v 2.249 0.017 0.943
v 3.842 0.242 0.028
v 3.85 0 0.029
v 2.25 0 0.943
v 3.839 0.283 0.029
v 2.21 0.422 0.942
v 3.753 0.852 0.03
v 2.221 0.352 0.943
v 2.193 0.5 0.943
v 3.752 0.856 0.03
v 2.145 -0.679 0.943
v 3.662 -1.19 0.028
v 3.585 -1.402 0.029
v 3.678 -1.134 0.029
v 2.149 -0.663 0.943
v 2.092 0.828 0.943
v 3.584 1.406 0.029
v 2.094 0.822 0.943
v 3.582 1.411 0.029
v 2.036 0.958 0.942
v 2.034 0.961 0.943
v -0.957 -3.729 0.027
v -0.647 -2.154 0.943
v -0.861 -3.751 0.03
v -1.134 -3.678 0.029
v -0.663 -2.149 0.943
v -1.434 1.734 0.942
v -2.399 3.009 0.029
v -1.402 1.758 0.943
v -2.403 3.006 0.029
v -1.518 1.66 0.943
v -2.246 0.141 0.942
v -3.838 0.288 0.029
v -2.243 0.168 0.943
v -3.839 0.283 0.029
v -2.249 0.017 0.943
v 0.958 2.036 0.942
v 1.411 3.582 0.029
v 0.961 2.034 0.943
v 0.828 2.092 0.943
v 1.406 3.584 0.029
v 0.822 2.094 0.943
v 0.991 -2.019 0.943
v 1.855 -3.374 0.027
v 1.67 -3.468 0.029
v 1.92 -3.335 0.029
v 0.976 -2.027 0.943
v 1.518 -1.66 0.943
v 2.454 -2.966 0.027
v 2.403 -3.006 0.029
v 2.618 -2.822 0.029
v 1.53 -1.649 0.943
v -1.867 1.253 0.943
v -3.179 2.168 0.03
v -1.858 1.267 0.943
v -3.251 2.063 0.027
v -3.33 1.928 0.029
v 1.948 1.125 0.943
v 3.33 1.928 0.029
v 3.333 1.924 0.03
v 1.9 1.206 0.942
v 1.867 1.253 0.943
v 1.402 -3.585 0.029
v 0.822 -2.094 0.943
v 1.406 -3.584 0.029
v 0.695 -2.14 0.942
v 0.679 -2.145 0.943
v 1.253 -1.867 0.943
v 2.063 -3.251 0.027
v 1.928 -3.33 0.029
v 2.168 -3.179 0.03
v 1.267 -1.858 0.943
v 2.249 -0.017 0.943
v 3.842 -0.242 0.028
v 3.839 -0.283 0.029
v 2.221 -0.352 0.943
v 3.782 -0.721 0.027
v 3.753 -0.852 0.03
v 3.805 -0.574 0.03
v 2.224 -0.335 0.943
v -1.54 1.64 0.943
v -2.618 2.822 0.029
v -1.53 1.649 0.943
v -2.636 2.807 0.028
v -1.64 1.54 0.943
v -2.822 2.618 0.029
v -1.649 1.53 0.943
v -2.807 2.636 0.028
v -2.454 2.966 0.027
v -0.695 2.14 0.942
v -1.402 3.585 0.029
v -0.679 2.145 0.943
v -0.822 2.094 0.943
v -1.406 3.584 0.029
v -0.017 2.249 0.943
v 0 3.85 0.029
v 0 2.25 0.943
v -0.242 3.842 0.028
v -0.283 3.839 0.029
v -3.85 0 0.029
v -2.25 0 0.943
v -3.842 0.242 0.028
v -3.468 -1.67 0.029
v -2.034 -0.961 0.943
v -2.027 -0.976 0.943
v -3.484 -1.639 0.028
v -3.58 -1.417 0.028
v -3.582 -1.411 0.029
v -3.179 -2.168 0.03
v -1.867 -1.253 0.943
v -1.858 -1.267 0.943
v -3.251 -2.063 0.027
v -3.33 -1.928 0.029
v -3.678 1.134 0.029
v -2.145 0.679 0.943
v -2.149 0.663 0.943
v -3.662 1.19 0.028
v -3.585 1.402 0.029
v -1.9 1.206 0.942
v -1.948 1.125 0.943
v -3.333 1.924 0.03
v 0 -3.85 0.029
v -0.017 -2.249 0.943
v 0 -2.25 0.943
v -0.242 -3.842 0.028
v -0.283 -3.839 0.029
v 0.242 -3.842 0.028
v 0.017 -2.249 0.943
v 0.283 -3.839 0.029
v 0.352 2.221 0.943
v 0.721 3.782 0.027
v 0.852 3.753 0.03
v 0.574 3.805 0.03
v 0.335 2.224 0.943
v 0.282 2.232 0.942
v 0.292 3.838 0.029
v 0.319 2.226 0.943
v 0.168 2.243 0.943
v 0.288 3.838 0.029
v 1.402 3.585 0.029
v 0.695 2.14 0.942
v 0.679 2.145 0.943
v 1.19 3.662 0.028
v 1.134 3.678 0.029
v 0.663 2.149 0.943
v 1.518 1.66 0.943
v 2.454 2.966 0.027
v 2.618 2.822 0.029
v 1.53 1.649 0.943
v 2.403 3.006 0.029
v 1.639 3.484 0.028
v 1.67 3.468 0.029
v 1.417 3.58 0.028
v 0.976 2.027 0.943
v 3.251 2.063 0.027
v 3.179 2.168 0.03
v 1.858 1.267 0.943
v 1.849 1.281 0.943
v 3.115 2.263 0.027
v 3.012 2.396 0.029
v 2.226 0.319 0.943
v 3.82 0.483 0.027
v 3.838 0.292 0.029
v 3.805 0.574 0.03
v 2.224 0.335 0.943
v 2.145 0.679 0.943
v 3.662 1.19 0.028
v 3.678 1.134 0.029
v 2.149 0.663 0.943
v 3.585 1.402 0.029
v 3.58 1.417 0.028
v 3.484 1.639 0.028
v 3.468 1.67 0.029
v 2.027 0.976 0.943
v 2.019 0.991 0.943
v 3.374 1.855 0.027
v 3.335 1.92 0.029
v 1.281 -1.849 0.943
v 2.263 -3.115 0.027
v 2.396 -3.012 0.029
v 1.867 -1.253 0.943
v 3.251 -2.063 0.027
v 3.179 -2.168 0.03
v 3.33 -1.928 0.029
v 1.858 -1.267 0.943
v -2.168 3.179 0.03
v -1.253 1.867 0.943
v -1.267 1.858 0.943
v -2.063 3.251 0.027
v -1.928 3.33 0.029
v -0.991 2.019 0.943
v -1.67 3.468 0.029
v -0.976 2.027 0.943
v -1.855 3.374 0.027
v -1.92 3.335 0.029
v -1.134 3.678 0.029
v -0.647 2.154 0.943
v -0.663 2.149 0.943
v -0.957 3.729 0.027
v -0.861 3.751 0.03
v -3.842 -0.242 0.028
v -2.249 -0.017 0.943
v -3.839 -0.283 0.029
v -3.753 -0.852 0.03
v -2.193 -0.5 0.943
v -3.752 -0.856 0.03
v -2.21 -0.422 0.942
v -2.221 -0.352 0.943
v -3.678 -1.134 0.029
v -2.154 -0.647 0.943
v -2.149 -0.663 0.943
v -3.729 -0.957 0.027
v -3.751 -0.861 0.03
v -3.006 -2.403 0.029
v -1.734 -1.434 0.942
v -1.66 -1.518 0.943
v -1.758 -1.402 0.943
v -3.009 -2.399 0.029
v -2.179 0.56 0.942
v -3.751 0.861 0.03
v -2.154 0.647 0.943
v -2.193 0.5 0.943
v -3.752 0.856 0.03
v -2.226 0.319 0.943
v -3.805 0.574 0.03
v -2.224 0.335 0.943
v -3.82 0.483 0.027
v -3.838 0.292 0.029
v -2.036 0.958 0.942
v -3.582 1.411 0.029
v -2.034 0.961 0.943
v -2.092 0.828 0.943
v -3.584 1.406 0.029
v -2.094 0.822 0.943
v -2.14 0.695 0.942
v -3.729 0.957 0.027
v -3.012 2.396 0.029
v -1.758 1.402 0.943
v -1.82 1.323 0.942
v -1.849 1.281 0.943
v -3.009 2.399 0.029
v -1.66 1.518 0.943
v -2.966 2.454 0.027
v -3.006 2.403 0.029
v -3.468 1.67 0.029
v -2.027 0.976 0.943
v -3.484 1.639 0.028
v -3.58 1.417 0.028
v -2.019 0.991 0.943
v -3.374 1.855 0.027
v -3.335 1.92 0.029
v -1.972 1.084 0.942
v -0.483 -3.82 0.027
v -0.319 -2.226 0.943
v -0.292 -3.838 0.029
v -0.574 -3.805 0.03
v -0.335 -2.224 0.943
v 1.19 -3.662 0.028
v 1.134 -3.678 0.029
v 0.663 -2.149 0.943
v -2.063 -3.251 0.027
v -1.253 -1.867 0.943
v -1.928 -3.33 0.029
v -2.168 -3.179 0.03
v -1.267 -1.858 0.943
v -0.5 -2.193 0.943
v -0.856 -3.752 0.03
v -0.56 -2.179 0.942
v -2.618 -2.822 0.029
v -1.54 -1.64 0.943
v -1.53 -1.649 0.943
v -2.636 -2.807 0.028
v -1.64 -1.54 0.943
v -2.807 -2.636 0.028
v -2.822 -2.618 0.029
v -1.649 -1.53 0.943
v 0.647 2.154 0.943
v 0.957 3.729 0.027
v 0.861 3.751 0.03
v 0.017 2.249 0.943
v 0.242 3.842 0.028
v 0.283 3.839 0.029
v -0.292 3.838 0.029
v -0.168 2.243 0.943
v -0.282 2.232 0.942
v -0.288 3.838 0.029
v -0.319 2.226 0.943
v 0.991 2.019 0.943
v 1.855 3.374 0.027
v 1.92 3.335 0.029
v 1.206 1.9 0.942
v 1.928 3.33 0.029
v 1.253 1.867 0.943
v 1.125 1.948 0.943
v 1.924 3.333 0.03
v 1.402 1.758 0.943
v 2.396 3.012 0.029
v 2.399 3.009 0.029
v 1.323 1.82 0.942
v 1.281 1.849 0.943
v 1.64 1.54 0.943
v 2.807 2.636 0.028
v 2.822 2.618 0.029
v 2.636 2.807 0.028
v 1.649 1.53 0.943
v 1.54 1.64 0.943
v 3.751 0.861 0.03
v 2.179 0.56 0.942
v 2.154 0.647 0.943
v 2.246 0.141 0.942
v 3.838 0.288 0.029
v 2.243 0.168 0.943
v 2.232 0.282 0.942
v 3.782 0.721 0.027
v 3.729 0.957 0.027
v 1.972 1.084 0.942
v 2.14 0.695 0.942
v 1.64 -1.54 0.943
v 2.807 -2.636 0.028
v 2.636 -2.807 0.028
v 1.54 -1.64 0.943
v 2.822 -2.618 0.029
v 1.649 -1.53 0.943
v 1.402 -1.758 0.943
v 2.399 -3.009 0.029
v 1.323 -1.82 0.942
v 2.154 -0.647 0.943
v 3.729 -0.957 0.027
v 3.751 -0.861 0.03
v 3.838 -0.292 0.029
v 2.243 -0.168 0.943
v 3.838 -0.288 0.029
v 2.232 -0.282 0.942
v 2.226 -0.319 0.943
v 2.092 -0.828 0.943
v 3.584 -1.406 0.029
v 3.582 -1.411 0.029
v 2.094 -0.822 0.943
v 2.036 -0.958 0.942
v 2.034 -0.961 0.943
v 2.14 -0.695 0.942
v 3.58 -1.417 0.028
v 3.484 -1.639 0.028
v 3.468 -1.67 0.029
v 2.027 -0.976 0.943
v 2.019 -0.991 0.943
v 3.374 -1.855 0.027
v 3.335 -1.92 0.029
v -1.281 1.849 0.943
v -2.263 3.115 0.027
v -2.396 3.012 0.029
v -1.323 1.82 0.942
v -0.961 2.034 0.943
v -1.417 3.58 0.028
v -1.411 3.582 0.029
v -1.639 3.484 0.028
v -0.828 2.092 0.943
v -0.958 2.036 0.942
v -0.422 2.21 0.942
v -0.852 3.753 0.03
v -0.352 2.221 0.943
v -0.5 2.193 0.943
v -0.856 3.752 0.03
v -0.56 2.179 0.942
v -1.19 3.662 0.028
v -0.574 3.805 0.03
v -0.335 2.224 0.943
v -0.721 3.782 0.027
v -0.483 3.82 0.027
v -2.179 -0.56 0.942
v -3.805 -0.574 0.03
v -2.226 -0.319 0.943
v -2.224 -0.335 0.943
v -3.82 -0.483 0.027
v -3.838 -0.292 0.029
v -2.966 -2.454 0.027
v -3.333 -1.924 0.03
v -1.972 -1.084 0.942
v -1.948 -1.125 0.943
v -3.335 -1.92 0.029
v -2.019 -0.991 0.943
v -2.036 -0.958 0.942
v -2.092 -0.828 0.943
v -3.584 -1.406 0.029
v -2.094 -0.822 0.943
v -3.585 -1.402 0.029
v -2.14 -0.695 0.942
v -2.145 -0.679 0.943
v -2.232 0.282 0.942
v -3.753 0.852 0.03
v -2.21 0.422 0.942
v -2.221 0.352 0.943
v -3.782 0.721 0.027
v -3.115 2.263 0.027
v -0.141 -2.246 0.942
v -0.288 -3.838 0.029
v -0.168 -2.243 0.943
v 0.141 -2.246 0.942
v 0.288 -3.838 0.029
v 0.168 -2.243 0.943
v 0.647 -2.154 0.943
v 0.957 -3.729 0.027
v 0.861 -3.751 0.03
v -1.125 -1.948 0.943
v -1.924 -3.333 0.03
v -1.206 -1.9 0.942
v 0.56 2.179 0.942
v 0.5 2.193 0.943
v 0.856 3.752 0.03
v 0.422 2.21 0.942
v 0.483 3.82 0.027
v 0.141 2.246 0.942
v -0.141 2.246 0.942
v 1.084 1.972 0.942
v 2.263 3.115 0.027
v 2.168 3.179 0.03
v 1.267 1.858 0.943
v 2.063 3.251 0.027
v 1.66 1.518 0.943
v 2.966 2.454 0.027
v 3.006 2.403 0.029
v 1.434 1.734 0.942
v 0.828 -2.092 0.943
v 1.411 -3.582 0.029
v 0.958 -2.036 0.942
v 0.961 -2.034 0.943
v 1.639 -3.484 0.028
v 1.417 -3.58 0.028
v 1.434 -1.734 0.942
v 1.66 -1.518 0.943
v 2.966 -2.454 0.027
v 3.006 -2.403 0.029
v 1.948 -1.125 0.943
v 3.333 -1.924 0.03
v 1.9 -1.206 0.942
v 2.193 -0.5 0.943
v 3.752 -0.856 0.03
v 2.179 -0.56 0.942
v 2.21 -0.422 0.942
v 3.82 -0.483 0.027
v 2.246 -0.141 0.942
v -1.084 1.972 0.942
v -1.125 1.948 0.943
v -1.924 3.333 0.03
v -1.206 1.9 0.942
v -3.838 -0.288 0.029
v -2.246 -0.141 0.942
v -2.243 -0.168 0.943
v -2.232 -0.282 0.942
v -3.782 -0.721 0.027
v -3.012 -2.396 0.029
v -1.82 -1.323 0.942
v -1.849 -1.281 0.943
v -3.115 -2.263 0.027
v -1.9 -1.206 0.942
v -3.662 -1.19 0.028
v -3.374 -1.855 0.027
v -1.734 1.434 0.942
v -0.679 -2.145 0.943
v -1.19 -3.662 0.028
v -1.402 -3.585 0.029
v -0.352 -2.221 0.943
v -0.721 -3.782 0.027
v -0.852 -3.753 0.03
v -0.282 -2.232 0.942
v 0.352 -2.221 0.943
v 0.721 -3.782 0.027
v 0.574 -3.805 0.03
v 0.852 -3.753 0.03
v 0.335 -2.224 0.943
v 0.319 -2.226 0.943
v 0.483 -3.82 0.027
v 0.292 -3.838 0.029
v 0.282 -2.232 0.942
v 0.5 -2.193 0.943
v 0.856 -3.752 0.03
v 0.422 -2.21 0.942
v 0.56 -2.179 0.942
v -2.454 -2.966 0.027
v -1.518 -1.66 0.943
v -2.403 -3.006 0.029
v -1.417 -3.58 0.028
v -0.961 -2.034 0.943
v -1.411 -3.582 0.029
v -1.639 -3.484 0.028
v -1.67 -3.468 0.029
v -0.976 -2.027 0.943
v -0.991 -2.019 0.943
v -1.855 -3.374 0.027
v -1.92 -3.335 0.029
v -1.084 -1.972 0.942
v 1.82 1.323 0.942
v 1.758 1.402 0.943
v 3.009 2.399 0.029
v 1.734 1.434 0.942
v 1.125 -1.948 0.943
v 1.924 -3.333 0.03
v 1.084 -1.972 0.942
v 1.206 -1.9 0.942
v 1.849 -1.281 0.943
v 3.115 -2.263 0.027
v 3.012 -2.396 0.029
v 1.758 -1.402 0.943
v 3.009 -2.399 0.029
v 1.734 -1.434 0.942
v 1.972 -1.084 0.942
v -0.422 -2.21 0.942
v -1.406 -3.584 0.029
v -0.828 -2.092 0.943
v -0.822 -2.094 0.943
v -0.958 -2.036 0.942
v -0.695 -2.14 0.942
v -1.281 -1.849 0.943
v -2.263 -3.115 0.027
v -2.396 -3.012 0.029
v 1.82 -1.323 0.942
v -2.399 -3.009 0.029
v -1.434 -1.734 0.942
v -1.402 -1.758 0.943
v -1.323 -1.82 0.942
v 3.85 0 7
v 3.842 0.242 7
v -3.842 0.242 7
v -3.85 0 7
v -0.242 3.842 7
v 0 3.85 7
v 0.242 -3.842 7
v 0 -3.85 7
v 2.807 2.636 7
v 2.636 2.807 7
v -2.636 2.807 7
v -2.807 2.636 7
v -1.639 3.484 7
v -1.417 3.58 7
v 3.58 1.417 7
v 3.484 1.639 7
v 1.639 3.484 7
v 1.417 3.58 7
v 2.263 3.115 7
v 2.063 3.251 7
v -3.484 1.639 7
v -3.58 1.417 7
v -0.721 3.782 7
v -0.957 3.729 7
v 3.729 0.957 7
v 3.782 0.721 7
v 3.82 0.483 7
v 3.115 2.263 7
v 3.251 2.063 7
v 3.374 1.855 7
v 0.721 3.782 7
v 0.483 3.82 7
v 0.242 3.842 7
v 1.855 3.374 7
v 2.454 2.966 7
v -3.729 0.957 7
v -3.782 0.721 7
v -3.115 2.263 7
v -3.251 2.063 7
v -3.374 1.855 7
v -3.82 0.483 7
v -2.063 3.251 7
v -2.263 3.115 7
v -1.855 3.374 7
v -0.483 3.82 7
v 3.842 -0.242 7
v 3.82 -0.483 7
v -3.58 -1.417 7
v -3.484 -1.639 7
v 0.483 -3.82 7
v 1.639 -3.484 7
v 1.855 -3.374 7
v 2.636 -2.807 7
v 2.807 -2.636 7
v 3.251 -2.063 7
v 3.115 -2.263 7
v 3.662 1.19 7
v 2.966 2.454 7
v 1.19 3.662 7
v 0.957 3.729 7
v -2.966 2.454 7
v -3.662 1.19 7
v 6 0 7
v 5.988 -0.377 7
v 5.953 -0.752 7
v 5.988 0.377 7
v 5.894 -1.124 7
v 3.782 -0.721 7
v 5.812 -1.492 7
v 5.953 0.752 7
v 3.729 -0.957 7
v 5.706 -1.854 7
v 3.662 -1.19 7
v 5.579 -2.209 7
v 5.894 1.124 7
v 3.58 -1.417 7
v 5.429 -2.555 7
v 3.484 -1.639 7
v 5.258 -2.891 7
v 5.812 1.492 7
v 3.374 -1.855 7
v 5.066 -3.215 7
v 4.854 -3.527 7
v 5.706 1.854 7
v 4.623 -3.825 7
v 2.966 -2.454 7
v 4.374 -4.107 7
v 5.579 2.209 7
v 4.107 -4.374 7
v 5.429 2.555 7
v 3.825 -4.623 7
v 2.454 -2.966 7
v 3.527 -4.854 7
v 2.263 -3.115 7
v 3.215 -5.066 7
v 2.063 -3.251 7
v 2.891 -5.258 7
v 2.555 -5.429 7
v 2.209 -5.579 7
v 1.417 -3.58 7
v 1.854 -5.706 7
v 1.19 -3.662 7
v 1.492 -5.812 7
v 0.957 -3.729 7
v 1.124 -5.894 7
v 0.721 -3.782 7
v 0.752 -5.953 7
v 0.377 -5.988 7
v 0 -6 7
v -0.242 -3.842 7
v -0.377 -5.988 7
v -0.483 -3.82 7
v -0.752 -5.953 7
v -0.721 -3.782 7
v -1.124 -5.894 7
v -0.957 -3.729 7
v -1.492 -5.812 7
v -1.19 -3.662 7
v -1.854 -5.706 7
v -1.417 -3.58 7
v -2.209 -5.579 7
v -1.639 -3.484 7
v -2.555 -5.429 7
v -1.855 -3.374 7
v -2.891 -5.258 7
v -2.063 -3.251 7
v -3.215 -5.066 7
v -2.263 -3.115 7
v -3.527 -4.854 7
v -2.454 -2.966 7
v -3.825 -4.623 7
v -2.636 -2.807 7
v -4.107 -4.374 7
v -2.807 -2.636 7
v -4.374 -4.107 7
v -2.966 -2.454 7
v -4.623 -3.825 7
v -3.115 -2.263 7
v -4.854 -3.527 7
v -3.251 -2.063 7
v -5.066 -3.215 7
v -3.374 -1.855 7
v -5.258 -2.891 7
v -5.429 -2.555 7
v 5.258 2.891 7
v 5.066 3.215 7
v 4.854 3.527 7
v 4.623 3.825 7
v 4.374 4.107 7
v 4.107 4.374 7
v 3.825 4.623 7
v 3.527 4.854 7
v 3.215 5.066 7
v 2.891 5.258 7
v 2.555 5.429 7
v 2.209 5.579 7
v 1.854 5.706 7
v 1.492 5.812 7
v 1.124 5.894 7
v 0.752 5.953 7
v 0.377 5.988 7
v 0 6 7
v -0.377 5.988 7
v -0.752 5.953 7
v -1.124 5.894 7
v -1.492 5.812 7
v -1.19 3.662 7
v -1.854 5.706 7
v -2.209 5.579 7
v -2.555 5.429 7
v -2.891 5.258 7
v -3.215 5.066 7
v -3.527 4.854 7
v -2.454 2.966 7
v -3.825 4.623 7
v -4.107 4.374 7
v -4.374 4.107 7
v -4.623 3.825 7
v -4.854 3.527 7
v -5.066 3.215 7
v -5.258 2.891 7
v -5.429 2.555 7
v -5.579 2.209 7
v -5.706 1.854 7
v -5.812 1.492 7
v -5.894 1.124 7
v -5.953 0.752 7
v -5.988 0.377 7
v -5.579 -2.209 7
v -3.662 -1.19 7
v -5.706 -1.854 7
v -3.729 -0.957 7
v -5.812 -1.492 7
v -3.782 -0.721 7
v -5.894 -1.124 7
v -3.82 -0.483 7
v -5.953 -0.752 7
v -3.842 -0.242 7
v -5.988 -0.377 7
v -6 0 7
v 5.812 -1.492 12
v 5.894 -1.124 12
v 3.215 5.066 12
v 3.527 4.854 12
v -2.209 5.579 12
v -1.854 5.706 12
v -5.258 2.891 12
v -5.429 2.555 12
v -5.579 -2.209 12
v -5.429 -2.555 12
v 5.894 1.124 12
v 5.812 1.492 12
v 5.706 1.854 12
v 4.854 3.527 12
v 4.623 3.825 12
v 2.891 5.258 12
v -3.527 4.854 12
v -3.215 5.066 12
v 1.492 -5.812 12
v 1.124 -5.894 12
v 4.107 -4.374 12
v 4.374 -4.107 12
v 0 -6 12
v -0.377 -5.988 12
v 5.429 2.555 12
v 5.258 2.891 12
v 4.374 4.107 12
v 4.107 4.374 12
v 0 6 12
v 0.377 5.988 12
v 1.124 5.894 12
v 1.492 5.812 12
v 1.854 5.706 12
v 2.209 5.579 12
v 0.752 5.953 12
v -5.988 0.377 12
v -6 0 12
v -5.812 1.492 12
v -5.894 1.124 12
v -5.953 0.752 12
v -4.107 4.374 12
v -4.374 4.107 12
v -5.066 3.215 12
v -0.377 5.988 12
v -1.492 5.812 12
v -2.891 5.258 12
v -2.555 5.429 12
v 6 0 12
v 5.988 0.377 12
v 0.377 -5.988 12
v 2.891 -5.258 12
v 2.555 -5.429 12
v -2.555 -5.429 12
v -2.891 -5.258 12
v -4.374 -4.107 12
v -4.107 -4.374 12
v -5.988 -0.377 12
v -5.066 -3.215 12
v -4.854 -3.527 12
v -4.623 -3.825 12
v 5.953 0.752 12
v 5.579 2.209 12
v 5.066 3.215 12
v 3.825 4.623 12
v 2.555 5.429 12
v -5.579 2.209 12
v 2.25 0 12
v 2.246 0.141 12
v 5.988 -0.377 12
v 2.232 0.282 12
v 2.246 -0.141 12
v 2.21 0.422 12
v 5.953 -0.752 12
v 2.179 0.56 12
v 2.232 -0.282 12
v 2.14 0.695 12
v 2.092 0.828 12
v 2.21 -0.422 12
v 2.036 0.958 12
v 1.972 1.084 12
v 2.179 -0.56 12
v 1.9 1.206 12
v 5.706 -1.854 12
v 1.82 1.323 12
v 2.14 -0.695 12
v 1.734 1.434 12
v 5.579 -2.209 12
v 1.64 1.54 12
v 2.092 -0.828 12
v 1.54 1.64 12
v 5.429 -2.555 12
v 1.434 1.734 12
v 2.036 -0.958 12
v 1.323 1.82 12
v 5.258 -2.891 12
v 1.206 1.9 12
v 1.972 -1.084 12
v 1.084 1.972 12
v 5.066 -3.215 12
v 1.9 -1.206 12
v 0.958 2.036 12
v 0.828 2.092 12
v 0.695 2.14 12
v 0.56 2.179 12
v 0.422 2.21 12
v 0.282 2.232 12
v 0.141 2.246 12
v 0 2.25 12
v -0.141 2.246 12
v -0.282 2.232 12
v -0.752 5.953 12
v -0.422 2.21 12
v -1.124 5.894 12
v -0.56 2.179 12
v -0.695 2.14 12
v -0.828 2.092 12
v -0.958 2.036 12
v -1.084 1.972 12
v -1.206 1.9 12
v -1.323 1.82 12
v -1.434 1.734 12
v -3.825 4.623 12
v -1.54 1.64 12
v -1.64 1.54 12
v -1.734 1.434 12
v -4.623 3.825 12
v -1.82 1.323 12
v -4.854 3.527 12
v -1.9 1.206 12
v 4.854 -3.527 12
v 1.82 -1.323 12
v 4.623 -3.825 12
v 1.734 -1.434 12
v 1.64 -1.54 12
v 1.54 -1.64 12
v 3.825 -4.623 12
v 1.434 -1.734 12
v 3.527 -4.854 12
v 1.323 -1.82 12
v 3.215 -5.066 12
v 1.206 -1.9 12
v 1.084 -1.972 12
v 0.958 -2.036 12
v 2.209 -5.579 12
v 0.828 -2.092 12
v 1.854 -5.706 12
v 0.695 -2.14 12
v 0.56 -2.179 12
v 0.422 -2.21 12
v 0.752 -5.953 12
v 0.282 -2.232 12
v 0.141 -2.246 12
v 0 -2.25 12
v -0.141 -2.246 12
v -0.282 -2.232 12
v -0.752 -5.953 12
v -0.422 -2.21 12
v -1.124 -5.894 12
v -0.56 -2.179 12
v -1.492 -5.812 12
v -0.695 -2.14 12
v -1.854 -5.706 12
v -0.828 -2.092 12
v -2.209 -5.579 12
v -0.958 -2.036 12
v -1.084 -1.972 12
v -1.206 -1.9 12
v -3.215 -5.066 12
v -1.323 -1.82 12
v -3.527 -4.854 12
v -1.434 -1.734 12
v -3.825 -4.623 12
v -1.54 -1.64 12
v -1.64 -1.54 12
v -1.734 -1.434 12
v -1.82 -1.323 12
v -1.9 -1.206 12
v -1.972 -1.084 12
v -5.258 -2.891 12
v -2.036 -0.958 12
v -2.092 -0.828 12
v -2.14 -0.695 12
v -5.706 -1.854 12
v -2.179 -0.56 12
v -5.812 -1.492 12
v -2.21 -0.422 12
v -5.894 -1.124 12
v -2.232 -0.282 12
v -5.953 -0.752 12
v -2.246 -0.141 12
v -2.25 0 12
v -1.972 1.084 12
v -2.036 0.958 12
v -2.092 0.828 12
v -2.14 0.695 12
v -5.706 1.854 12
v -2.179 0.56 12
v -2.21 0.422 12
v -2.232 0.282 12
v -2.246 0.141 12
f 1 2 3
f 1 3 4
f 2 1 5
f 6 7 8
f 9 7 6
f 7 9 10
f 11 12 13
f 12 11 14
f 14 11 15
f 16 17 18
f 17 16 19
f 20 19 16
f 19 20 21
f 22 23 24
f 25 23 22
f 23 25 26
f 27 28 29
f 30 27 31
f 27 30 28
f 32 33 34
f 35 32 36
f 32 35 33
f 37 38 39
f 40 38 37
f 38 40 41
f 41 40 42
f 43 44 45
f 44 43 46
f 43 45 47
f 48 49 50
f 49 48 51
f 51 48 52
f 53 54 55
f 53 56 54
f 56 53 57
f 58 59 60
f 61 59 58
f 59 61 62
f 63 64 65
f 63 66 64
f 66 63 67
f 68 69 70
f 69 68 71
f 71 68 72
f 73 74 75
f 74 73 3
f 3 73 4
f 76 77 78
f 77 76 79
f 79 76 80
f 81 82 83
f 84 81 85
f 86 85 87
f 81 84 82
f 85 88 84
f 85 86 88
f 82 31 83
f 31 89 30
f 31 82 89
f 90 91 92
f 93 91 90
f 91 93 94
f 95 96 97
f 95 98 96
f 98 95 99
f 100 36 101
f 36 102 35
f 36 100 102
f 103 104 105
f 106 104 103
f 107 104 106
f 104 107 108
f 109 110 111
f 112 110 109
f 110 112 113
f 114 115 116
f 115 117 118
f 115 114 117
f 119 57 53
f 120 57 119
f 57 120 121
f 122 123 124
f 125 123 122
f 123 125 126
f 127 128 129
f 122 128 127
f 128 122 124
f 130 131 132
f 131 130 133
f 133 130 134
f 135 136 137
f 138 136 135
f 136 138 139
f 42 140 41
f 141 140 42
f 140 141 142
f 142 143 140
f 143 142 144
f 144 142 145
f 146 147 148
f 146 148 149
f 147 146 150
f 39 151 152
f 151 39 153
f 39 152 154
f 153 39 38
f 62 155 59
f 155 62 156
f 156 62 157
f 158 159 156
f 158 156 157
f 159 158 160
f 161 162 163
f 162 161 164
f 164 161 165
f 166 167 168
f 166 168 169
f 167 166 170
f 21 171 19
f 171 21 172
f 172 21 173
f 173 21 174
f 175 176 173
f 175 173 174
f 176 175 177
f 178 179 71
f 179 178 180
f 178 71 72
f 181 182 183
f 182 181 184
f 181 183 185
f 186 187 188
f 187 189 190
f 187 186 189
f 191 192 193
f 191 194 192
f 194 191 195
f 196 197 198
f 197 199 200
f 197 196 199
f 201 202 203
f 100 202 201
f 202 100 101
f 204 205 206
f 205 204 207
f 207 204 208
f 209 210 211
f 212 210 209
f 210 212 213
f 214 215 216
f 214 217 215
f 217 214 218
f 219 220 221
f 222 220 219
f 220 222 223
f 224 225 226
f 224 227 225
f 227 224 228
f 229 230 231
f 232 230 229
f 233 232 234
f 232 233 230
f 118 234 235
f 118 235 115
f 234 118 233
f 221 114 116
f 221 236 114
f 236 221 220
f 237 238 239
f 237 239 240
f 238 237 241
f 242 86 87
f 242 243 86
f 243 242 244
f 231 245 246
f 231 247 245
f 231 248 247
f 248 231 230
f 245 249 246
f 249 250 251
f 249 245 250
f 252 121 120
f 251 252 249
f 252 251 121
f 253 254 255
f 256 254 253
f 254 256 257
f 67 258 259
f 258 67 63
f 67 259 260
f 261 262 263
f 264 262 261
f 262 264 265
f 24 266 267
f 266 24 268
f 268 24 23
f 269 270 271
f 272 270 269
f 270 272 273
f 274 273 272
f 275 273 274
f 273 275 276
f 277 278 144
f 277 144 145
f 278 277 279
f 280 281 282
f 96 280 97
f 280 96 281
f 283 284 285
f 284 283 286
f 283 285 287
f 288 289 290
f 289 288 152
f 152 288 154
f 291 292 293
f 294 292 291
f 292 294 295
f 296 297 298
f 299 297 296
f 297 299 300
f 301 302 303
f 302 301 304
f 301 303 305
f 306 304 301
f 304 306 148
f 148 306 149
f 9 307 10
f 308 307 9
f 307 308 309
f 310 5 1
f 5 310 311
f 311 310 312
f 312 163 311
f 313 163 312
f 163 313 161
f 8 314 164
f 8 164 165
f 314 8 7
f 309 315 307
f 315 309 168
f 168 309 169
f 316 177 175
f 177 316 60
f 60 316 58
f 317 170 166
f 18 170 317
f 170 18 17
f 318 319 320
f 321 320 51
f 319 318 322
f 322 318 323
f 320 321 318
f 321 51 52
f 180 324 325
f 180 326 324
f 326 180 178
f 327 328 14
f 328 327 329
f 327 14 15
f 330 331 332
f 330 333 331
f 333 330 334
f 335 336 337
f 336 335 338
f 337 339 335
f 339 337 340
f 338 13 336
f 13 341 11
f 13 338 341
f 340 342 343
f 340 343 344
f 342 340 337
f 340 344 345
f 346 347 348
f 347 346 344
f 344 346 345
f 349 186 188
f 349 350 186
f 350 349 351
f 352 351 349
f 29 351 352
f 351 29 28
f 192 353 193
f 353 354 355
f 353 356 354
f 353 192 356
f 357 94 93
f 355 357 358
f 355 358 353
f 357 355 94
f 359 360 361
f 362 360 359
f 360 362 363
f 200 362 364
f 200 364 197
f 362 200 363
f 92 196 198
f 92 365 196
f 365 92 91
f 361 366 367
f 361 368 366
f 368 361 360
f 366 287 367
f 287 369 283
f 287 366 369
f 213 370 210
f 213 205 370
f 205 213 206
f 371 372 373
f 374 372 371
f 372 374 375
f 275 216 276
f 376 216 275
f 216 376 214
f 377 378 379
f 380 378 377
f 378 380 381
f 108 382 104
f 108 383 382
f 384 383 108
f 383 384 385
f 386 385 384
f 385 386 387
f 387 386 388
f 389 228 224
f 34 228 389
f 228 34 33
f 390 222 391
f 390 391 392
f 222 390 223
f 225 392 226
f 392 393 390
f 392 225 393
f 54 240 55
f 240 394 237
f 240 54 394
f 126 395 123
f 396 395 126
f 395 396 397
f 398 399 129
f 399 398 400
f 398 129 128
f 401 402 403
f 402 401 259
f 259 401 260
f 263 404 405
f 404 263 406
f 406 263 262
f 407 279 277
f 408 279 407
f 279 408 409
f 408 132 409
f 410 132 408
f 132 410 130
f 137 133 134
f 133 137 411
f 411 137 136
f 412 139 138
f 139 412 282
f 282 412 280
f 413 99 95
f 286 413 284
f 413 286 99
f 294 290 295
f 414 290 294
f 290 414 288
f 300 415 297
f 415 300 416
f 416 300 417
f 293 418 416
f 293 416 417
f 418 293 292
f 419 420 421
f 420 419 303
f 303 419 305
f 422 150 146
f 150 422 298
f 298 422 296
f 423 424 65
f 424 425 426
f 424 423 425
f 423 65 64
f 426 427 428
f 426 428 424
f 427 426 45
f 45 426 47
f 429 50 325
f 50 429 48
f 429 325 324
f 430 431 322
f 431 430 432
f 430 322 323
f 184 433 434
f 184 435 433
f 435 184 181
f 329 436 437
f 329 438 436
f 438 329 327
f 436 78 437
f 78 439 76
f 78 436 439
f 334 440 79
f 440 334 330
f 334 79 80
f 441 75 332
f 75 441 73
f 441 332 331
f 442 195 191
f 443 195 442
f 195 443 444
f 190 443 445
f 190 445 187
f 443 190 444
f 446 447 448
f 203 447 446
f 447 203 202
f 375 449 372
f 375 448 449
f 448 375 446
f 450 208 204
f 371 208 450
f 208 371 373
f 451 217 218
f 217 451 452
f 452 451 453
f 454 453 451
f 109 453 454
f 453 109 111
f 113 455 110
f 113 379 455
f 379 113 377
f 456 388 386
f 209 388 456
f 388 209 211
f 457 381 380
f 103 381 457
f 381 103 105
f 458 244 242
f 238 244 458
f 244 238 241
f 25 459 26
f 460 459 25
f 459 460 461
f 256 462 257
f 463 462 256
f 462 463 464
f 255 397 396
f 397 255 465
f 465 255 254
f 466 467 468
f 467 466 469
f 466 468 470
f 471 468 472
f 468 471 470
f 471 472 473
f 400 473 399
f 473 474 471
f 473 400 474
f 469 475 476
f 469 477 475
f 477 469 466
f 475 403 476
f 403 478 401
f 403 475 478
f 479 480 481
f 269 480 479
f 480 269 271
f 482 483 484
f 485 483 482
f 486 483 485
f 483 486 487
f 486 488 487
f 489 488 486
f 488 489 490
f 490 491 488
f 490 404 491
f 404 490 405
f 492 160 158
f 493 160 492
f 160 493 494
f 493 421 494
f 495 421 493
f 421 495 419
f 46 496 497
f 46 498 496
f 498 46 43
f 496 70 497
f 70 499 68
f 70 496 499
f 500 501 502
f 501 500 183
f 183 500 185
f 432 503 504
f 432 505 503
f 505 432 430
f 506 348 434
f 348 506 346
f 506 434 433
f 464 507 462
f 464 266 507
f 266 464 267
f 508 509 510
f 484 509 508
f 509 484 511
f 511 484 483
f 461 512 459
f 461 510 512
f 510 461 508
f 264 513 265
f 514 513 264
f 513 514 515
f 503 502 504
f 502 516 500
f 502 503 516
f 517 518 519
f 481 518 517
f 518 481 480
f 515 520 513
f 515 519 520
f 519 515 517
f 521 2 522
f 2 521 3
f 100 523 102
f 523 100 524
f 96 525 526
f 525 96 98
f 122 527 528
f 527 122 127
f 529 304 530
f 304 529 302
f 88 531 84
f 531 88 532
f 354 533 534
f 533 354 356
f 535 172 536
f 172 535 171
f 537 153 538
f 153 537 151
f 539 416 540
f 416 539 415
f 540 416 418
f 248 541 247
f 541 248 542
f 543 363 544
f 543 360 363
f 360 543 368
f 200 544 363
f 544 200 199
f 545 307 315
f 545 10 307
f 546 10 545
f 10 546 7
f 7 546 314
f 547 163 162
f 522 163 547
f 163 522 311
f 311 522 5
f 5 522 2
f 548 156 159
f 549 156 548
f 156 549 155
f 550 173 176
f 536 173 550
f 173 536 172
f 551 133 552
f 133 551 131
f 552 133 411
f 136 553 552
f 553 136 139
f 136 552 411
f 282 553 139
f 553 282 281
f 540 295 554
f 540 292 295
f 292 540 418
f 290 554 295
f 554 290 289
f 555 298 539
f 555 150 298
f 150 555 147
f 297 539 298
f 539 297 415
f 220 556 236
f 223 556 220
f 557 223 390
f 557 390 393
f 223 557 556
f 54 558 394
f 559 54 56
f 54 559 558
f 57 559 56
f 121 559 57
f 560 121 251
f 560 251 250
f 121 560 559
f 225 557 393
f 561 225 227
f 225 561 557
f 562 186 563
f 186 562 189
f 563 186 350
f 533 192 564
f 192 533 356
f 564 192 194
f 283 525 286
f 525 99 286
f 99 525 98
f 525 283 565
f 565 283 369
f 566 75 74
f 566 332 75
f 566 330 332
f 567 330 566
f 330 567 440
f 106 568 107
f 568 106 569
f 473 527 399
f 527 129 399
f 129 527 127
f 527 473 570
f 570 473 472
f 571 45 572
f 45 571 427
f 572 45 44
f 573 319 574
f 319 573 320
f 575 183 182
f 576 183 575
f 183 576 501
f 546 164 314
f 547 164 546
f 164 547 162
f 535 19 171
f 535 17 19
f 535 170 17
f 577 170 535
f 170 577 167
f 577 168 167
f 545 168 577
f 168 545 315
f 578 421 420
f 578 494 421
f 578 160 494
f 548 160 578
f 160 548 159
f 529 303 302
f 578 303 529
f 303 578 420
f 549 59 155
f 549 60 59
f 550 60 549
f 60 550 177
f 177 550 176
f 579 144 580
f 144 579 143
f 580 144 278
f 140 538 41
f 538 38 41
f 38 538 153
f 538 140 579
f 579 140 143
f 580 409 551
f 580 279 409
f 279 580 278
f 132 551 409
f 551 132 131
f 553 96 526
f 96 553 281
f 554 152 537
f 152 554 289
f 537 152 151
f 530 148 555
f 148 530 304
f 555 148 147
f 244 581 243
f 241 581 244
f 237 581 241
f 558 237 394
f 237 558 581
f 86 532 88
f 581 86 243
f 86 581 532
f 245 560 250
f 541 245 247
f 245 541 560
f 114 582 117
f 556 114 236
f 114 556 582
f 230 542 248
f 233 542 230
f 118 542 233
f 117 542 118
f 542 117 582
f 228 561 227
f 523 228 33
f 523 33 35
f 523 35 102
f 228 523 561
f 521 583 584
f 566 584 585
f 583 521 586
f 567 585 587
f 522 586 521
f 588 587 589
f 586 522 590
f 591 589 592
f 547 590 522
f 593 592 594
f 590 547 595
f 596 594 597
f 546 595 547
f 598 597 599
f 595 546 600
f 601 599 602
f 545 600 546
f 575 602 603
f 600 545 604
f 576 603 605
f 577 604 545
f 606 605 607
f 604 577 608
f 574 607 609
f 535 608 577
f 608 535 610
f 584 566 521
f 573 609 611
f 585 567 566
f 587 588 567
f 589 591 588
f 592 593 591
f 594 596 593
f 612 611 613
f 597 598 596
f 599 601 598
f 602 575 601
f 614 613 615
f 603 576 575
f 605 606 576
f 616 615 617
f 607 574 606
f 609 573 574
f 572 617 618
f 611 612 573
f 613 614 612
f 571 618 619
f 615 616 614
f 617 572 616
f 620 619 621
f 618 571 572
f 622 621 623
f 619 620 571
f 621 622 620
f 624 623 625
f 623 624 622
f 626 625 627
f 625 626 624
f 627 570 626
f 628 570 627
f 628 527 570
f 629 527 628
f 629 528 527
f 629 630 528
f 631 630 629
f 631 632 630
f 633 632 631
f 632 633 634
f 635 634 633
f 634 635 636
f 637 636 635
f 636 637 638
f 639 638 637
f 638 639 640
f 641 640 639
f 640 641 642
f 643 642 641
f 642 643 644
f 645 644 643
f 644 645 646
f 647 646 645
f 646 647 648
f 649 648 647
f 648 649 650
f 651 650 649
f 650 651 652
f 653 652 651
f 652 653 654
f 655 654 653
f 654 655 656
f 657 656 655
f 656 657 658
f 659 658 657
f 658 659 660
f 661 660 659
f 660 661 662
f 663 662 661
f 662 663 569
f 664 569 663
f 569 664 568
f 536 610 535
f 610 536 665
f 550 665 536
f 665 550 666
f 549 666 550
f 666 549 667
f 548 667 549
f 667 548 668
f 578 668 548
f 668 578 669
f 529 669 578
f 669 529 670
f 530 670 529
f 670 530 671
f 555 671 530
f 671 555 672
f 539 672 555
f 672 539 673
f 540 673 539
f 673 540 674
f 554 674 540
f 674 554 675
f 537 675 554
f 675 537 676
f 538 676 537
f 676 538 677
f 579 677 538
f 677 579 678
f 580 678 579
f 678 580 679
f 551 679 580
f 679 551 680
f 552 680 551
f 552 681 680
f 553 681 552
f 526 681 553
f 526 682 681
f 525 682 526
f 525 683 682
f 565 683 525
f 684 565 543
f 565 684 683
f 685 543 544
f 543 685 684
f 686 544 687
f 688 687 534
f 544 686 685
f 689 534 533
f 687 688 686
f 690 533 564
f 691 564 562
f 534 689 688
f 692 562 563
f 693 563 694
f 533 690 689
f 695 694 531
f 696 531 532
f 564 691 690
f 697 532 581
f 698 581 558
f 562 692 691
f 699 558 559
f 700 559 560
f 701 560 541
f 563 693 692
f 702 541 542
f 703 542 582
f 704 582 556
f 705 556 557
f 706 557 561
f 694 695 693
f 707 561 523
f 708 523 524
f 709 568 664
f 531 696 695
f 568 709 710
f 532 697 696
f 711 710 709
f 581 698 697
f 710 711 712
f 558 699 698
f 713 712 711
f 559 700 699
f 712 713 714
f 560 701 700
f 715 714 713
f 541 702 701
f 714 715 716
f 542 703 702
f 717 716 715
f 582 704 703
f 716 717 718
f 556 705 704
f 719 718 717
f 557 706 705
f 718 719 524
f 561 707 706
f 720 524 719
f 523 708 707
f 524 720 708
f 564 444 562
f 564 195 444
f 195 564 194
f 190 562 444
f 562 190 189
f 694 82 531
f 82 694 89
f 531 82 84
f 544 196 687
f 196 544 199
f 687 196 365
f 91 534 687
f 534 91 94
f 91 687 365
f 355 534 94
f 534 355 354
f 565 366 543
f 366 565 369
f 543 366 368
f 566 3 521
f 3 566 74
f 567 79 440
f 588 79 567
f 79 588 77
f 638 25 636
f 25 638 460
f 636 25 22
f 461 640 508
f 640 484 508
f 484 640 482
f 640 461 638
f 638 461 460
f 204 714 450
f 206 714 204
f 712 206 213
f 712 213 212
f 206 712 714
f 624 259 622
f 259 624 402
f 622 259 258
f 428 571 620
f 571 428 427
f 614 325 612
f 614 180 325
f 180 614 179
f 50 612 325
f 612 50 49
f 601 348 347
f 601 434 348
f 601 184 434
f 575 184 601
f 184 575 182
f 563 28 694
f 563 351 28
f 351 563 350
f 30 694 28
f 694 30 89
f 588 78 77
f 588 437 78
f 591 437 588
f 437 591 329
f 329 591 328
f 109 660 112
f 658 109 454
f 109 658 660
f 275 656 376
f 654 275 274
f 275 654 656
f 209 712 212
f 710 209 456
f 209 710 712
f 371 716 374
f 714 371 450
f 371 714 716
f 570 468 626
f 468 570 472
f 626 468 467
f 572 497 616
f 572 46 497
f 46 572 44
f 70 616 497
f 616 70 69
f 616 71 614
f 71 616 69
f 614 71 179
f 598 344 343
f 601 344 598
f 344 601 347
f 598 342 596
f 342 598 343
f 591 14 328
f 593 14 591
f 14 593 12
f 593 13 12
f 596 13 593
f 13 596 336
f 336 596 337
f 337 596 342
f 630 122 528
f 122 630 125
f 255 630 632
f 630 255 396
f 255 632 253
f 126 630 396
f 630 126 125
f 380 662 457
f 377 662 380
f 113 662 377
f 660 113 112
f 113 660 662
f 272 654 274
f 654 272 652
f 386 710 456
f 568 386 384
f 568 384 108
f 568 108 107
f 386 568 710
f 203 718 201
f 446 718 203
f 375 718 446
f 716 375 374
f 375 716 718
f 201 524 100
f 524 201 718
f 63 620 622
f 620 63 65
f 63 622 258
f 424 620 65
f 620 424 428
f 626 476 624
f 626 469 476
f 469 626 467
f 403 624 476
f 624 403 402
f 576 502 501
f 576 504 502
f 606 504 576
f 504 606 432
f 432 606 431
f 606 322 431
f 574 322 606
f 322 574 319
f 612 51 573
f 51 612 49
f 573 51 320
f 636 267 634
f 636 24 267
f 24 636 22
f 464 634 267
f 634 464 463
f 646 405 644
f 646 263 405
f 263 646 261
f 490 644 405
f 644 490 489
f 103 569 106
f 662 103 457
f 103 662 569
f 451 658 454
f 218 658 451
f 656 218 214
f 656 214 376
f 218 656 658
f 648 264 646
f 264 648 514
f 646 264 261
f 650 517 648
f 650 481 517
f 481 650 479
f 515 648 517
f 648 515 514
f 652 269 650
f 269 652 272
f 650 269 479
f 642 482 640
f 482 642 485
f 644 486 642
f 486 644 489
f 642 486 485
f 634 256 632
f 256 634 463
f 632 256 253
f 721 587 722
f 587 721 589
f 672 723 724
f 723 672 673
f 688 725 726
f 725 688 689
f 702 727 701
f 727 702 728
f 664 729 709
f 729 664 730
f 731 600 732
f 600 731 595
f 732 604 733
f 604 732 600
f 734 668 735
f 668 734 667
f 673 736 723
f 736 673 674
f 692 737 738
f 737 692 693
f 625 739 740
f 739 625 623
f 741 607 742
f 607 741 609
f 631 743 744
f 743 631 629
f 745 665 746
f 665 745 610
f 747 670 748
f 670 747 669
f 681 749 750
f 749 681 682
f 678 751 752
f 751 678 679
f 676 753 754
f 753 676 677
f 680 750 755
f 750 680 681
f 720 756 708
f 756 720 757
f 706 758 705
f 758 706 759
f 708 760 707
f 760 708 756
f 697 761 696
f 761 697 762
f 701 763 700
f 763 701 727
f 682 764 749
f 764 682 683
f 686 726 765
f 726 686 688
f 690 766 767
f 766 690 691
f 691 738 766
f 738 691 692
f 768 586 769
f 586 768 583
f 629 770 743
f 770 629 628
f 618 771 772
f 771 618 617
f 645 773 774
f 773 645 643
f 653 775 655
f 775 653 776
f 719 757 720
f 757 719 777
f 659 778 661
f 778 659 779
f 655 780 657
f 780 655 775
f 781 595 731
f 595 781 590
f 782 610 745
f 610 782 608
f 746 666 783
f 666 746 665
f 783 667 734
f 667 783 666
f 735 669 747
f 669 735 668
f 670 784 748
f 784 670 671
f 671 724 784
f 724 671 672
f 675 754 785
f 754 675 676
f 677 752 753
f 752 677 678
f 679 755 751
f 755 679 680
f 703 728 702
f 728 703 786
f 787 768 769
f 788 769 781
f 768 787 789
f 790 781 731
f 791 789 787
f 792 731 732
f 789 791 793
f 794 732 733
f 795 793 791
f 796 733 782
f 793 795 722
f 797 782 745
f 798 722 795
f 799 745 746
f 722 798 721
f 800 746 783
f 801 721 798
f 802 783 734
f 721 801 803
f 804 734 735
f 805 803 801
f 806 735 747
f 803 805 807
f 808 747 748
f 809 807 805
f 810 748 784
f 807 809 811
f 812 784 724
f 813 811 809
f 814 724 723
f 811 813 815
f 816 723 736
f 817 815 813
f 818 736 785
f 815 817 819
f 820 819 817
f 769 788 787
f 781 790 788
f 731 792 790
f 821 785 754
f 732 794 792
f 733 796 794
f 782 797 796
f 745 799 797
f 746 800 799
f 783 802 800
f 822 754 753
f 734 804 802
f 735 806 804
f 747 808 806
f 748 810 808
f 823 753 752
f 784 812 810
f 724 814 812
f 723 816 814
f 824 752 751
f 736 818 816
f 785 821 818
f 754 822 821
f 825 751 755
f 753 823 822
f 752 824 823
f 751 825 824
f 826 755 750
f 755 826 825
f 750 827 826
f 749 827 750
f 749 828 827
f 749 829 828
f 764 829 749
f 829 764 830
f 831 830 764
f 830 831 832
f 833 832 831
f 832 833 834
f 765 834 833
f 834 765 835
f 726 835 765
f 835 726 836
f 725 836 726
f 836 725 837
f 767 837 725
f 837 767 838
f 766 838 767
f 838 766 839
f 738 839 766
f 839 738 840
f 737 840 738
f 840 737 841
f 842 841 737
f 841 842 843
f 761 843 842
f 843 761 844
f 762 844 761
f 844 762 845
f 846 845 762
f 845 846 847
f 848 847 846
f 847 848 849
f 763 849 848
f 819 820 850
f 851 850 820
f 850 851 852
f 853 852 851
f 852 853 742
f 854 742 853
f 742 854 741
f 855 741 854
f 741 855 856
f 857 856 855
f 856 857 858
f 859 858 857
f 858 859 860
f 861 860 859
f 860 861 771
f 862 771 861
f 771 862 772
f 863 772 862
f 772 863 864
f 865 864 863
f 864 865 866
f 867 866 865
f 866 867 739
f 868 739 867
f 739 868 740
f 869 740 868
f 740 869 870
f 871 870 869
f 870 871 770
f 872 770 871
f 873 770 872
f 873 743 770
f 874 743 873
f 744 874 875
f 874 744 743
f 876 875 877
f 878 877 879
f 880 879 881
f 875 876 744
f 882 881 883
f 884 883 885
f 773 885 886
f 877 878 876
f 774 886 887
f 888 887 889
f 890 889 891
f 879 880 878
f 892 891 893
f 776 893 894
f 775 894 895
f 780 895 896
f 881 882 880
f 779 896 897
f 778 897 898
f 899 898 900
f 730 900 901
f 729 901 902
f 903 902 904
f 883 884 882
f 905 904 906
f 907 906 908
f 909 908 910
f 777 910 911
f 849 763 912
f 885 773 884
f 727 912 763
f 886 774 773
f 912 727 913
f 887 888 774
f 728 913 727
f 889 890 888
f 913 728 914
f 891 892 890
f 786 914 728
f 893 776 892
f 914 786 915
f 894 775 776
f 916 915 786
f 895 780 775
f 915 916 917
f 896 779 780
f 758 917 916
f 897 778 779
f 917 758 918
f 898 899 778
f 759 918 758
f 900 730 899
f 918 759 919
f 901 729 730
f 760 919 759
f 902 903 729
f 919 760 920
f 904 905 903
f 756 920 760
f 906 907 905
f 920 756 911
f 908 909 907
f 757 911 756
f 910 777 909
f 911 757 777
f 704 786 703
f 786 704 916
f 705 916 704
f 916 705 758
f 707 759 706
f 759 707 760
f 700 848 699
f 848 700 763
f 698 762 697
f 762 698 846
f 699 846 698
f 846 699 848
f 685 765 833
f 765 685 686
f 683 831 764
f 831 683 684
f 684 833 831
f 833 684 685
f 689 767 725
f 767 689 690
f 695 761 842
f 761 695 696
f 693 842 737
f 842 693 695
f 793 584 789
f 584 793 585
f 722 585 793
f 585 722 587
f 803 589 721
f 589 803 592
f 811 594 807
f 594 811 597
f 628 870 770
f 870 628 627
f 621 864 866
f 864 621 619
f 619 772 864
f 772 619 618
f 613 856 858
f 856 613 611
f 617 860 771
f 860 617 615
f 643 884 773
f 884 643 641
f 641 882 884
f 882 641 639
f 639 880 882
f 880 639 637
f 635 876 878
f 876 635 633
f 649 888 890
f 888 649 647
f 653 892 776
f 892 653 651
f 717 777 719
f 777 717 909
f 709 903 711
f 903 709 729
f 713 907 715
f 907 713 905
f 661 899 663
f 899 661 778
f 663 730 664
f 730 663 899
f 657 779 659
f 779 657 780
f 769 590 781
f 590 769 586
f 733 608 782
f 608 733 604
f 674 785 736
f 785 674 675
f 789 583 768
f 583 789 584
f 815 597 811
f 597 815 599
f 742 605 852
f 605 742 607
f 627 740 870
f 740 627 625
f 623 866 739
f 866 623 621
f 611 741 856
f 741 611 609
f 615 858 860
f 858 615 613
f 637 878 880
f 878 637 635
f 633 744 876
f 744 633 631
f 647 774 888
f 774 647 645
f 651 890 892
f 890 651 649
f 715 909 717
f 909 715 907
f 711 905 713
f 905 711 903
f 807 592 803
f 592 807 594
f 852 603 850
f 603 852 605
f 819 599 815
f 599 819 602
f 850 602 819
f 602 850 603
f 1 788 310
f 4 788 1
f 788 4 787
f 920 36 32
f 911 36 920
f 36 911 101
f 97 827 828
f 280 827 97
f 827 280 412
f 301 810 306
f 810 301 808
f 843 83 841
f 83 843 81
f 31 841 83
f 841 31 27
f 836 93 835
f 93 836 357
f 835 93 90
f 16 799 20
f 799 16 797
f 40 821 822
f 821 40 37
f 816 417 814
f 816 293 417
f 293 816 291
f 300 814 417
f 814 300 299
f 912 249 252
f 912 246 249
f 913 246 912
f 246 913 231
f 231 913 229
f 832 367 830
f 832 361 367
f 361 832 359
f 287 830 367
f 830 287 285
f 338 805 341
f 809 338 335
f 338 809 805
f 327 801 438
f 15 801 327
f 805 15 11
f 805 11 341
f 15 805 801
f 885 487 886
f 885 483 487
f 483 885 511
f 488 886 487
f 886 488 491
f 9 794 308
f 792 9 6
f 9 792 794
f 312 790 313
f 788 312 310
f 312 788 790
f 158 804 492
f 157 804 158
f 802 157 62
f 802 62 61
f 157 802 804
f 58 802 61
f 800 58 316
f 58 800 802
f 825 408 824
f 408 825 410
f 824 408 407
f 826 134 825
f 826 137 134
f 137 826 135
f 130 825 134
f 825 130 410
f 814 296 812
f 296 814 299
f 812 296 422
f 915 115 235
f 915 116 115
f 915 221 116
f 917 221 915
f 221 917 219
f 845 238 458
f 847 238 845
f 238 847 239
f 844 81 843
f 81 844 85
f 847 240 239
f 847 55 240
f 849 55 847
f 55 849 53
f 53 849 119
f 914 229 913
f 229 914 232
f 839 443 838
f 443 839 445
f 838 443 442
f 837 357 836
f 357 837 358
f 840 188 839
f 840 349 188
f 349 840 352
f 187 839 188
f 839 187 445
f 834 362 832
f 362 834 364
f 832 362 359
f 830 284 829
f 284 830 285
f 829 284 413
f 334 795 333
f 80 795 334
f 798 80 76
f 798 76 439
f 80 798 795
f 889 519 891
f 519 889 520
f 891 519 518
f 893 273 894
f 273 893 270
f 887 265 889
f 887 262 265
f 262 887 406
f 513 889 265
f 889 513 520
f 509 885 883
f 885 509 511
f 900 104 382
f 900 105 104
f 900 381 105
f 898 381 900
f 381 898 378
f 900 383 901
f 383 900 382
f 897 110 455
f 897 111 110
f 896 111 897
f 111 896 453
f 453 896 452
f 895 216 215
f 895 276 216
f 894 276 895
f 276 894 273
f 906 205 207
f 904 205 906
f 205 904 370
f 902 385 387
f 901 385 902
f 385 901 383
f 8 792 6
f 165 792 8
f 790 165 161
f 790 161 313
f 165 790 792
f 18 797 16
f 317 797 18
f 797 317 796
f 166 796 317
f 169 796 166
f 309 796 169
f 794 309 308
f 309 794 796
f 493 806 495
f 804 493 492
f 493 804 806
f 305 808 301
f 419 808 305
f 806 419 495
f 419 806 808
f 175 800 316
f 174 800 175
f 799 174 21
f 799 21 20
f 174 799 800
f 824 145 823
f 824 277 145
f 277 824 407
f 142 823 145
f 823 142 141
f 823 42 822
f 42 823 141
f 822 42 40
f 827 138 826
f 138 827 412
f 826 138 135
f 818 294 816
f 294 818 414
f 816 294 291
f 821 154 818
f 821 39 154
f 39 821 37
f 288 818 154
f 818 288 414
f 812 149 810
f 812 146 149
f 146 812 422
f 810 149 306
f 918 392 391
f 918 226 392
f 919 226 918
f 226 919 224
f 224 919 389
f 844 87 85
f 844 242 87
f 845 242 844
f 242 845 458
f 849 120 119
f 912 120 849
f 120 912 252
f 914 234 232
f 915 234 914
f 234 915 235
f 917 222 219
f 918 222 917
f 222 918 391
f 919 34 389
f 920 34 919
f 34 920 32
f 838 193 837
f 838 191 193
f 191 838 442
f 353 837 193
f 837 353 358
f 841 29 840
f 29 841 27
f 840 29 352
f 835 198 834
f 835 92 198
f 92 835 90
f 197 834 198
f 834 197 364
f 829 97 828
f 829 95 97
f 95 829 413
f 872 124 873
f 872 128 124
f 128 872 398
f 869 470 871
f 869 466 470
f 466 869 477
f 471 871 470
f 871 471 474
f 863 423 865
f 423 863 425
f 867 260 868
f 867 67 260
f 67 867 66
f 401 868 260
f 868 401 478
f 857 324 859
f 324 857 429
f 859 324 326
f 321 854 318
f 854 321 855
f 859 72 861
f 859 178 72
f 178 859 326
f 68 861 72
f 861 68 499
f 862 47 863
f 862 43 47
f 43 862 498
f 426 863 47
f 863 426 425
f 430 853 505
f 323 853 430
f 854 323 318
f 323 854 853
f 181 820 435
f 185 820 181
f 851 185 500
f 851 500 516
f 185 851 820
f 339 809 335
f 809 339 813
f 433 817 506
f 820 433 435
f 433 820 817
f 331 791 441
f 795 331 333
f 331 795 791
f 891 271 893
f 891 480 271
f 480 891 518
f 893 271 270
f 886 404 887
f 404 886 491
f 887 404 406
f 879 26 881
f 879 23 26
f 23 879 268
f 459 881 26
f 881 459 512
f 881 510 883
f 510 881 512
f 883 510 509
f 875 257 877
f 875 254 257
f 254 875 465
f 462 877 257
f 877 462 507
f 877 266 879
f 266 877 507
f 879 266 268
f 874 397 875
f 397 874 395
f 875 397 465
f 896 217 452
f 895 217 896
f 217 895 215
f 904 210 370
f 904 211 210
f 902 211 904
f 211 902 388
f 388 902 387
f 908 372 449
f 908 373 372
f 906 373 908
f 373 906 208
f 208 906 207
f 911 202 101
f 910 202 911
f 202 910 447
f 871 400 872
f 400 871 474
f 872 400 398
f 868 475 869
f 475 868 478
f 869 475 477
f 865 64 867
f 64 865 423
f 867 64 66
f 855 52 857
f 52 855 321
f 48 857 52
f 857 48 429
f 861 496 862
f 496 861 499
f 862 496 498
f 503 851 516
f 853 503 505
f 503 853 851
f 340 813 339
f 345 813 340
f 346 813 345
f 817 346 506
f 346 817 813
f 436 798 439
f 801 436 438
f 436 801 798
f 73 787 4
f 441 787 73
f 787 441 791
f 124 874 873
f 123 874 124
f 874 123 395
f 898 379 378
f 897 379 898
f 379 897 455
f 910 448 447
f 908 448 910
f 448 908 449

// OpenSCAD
use <threads_v2p1.scad>;

$fn=100;
axis_h=7;
wall_h=5;
screw_d=4.5;

difference()
{
    union()
    {
        //axis inside bearing and screw hole
        CountersunkClearanceHole(screw_d-1, sinkdiam=0)
        {
            cylinder(d=8-0.3,h=axis_h);
        }

        //clearance from wall
        translate([0,0,axis_h])
            cylinder(d=12,h=wall_h);
    }
    
    //screw hole diameter
    cylinder(d=screw_d, h=wall_h+axis_h);
    
}
